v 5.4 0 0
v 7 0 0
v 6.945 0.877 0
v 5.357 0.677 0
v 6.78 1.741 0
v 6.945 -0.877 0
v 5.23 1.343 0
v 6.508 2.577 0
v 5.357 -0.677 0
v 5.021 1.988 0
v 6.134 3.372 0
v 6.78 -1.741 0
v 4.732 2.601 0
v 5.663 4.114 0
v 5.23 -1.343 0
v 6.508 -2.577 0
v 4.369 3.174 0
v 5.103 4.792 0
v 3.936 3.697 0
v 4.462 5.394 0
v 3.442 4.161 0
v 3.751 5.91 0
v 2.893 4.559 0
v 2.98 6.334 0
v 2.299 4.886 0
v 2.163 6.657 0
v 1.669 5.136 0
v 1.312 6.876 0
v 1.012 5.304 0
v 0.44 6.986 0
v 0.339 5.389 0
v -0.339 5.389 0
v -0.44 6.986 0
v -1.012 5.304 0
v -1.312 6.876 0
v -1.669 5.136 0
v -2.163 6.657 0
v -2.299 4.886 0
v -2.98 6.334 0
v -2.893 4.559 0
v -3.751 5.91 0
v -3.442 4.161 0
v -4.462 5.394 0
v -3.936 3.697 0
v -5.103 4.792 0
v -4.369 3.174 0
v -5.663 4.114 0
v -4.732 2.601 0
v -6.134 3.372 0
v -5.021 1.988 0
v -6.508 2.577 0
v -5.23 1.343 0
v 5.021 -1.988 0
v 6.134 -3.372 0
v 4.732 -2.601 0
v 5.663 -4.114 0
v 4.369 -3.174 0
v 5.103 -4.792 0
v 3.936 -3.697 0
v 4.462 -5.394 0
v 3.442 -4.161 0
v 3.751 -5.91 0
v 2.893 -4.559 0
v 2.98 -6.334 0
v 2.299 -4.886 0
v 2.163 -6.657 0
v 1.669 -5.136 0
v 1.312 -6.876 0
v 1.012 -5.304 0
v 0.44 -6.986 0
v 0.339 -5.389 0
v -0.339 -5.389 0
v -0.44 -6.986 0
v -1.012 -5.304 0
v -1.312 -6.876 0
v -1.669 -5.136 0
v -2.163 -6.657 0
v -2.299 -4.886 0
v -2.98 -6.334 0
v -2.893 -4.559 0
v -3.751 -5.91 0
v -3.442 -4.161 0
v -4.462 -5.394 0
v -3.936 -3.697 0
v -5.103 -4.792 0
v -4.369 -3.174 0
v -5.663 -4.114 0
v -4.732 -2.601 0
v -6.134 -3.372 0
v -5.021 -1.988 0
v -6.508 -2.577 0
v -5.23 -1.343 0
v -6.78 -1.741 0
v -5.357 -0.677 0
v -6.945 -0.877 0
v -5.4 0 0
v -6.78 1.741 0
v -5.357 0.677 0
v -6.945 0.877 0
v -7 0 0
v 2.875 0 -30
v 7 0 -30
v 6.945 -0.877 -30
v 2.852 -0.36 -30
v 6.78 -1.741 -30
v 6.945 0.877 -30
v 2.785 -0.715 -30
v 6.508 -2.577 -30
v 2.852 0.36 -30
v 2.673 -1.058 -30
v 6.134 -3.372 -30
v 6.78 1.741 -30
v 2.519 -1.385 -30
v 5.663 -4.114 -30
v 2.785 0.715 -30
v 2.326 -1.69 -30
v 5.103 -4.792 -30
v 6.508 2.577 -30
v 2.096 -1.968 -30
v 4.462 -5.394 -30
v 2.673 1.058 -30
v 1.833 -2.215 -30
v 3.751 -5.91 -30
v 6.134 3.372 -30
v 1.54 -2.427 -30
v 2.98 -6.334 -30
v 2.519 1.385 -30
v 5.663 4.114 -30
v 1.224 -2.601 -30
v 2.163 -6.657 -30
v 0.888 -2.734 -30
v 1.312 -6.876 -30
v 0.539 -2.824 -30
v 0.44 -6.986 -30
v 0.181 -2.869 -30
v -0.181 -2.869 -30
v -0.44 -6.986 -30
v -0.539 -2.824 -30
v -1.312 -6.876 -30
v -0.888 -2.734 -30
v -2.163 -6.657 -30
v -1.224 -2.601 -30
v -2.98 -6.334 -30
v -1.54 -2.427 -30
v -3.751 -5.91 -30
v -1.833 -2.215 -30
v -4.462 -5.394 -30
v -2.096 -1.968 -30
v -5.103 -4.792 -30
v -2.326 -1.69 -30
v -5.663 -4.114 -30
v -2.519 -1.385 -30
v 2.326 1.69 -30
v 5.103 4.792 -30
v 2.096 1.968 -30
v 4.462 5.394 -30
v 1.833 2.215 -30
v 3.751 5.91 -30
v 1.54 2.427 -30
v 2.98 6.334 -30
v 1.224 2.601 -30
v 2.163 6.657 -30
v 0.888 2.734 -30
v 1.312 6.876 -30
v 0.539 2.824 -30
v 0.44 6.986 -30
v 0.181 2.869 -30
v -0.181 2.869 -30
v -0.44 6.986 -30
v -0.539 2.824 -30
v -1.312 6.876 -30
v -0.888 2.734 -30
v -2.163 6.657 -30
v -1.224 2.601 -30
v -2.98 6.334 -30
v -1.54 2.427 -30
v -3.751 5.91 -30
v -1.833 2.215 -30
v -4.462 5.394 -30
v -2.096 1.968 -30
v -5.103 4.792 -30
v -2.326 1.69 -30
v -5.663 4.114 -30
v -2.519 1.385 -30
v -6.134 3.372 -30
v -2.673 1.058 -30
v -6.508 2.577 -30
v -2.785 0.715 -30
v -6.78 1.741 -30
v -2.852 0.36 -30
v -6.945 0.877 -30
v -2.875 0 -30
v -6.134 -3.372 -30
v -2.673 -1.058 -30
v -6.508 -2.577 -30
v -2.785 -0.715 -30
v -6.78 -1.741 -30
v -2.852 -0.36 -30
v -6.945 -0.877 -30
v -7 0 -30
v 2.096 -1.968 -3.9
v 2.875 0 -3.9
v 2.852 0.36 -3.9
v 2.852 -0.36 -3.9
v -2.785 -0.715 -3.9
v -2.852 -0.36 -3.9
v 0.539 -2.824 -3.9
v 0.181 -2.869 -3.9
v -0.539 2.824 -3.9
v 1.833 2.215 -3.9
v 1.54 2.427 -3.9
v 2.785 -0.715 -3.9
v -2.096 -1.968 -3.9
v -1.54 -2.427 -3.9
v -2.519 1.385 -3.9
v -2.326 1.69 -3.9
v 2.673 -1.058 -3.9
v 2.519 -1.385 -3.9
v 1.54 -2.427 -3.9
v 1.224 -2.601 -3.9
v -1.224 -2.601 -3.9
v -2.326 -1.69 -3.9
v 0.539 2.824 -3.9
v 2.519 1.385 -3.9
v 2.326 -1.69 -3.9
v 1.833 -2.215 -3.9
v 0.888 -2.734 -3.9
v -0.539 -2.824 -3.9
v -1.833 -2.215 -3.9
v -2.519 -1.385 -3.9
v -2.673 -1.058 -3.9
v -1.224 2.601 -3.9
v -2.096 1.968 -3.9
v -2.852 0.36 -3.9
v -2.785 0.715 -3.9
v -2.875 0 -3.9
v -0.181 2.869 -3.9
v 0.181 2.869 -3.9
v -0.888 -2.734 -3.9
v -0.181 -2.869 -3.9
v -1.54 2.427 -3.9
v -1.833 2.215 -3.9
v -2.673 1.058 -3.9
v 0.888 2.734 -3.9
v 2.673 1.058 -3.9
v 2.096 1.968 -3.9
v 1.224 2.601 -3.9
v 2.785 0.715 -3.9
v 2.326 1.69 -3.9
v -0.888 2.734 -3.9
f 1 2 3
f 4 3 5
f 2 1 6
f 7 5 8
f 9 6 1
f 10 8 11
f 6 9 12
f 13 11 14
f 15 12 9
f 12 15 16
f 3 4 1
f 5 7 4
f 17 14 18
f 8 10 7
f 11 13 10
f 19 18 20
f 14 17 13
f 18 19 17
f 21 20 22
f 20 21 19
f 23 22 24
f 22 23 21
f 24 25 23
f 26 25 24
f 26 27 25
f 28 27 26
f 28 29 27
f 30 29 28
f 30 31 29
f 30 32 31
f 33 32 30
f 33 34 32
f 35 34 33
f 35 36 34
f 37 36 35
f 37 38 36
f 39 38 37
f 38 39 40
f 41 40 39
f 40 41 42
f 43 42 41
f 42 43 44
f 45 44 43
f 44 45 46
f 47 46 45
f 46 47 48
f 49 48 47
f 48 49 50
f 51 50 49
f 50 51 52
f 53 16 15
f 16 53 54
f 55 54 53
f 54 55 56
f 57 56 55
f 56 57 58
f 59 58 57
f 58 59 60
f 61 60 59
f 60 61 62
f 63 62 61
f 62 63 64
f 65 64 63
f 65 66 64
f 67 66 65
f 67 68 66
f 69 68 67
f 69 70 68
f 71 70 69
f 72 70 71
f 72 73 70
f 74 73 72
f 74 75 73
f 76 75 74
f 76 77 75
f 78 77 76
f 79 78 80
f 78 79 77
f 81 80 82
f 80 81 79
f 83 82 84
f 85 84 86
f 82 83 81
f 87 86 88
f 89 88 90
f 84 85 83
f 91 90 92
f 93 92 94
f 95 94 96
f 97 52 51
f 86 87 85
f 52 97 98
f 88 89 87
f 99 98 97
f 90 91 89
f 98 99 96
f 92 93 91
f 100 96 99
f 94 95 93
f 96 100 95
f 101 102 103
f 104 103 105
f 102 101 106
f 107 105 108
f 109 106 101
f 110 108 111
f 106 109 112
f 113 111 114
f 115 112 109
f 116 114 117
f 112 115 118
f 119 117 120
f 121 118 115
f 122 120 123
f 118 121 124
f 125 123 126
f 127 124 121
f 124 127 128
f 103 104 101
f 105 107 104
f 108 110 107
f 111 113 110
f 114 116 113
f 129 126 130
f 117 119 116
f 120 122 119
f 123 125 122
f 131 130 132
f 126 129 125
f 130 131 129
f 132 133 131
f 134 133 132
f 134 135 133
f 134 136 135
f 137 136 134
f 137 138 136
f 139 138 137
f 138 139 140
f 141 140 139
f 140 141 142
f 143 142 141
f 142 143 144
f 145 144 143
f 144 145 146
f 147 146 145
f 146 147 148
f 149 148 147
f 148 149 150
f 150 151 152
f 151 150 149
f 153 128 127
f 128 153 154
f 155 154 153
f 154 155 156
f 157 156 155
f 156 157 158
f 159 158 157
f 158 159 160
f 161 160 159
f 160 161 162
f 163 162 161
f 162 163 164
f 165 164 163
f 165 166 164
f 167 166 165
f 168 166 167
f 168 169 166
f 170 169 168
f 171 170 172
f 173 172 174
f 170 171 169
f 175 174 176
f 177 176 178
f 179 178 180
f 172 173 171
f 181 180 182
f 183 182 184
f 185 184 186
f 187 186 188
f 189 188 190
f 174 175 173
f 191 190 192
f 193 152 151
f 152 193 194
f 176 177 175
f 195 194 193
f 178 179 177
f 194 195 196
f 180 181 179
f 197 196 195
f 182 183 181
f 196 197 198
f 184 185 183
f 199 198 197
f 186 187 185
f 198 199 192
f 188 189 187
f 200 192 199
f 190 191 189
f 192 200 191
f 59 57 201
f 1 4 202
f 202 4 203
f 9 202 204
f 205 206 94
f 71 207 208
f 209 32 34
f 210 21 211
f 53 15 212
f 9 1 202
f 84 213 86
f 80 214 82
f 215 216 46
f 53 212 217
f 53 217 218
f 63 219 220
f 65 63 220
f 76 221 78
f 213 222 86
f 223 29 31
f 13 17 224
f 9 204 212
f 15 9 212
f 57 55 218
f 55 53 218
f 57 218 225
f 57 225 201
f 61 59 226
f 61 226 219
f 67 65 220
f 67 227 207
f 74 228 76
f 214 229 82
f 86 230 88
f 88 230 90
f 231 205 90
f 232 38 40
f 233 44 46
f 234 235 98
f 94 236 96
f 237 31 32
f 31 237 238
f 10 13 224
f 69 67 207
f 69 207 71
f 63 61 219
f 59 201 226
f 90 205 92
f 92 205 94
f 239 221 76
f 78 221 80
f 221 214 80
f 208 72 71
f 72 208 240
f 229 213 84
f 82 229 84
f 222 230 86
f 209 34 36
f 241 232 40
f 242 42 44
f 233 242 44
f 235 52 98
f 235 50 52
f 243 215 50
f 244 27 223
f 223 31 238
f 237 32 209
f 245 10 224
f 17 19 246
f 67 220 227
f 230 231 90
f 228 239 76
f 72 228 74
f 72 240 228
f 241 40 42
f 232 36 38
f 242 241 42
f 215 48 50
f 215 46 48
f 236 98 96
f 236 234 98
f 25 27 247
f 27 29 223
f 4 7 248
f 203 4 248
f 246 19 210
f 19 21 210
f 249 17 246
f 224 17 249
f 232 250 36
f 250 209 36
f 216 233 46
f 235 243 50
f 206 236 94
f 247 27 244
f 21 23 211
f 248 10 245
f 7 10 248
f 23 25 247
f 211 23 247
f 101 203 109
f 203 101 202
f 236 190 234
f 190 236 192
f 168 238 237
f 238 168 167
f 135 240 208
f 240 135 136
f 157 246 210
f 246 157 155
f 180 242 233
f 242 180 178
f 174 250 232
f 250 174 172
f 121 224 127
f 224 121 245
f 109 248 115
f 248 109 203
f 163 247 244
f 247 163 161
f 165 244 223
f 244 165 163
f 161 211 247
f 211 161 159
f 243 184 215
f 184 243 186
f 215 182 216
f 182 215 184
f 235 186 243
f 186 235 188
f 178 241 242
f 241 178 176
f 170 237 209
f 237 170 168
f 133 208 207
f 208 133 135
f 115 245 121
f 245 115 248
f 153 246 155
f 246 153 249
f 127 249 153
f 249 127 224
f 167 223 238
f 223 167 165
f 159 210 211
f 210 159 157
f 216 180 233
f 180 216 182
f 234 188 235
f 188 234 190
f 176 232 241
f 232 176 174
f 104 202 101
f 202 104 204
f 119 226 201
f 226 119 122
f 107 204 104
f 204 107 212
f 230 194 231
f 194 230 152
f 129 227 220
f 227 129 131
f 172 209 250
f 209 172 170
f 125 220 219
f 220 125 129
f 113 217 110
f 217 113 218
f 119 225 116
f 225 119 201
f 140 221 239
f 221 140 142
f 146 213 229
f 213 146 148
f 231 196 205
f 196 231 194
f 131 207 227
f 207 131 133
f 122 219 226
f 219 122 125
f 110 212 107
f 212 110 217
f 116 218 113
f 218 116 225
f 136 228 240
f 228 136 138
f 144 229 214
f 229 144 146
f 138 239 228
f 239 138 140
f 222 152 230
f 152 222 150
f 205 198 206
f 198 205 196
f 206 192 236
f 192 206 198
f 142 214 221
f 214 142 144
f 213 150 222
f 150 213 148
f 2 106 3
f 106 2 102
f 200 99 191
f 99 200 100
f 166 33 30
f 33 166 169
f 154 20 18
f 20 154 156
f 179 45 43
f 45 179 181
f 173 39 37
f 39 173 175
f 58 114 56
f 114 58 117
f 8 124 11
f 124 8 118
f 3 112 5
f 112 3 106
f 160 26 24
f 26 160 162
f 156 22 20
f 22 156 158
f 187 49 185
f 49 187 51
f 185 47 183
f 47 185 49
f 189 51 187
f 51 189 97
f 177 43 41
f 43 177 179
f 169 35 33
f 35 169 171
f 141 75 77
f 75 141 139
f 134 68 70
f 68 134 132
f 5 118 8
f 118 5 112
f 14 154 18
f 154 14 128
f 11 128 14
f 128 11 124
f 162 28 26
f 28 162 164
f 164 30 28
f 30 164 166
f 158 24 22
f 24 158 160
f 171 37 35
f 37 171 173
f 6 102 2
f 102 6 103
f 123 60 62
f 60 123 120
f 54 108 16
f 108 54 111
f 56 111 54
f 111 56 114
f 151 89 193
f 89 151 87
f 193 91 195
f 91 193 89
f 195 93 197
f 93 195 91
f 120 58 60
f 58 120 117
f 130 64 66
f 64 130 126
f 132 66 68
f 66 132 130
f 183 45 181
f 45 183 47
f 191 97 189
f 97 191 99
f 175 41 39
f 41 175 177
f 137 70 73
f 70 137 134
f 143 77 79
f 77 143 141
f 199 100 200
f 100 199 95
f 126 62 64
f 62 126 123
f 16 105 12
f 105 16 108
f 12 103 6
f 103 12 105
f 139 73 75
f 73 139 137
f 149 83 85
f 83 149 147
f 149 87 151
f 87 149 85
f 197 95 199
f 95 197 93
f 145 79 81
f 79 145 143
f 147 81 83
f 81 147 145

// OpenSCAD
$fn = 50;


difference() {
	union() {
		translate(v = [0, 0, -30.0000000000]) {
			cylinder(h = 30, r = 7.0000000000);
		}
		cylinder(h = 0, r = 10.0000000000);
	}
	union() {
		translate(v = [0, 0, 0]) {
			rotate(a = [0, 0, 0]) {
				difference() {
					union() {
						#translate(v = [0, 0, -30.0000000000]) {
							cylinder(h = 30, r = 2.6000000000);
						}
						#translate(v = [0, 0, -3.9000000000]) {
							cylinder(h = 3.9000000000, r1 = 2.8750000000, r2 = 5.4000000000);
						}
						#translate(v = [0, 0, -30.0000000000]) {
							cylinder(h = 30, r = 2.8750000000);
						}
						#translate(v = [0, 0, -30.0000000000]) {
							cylinder(h = 30, r = 2.6000000000);
						}
					}
					union();
				}
			}
		}
	}
}
